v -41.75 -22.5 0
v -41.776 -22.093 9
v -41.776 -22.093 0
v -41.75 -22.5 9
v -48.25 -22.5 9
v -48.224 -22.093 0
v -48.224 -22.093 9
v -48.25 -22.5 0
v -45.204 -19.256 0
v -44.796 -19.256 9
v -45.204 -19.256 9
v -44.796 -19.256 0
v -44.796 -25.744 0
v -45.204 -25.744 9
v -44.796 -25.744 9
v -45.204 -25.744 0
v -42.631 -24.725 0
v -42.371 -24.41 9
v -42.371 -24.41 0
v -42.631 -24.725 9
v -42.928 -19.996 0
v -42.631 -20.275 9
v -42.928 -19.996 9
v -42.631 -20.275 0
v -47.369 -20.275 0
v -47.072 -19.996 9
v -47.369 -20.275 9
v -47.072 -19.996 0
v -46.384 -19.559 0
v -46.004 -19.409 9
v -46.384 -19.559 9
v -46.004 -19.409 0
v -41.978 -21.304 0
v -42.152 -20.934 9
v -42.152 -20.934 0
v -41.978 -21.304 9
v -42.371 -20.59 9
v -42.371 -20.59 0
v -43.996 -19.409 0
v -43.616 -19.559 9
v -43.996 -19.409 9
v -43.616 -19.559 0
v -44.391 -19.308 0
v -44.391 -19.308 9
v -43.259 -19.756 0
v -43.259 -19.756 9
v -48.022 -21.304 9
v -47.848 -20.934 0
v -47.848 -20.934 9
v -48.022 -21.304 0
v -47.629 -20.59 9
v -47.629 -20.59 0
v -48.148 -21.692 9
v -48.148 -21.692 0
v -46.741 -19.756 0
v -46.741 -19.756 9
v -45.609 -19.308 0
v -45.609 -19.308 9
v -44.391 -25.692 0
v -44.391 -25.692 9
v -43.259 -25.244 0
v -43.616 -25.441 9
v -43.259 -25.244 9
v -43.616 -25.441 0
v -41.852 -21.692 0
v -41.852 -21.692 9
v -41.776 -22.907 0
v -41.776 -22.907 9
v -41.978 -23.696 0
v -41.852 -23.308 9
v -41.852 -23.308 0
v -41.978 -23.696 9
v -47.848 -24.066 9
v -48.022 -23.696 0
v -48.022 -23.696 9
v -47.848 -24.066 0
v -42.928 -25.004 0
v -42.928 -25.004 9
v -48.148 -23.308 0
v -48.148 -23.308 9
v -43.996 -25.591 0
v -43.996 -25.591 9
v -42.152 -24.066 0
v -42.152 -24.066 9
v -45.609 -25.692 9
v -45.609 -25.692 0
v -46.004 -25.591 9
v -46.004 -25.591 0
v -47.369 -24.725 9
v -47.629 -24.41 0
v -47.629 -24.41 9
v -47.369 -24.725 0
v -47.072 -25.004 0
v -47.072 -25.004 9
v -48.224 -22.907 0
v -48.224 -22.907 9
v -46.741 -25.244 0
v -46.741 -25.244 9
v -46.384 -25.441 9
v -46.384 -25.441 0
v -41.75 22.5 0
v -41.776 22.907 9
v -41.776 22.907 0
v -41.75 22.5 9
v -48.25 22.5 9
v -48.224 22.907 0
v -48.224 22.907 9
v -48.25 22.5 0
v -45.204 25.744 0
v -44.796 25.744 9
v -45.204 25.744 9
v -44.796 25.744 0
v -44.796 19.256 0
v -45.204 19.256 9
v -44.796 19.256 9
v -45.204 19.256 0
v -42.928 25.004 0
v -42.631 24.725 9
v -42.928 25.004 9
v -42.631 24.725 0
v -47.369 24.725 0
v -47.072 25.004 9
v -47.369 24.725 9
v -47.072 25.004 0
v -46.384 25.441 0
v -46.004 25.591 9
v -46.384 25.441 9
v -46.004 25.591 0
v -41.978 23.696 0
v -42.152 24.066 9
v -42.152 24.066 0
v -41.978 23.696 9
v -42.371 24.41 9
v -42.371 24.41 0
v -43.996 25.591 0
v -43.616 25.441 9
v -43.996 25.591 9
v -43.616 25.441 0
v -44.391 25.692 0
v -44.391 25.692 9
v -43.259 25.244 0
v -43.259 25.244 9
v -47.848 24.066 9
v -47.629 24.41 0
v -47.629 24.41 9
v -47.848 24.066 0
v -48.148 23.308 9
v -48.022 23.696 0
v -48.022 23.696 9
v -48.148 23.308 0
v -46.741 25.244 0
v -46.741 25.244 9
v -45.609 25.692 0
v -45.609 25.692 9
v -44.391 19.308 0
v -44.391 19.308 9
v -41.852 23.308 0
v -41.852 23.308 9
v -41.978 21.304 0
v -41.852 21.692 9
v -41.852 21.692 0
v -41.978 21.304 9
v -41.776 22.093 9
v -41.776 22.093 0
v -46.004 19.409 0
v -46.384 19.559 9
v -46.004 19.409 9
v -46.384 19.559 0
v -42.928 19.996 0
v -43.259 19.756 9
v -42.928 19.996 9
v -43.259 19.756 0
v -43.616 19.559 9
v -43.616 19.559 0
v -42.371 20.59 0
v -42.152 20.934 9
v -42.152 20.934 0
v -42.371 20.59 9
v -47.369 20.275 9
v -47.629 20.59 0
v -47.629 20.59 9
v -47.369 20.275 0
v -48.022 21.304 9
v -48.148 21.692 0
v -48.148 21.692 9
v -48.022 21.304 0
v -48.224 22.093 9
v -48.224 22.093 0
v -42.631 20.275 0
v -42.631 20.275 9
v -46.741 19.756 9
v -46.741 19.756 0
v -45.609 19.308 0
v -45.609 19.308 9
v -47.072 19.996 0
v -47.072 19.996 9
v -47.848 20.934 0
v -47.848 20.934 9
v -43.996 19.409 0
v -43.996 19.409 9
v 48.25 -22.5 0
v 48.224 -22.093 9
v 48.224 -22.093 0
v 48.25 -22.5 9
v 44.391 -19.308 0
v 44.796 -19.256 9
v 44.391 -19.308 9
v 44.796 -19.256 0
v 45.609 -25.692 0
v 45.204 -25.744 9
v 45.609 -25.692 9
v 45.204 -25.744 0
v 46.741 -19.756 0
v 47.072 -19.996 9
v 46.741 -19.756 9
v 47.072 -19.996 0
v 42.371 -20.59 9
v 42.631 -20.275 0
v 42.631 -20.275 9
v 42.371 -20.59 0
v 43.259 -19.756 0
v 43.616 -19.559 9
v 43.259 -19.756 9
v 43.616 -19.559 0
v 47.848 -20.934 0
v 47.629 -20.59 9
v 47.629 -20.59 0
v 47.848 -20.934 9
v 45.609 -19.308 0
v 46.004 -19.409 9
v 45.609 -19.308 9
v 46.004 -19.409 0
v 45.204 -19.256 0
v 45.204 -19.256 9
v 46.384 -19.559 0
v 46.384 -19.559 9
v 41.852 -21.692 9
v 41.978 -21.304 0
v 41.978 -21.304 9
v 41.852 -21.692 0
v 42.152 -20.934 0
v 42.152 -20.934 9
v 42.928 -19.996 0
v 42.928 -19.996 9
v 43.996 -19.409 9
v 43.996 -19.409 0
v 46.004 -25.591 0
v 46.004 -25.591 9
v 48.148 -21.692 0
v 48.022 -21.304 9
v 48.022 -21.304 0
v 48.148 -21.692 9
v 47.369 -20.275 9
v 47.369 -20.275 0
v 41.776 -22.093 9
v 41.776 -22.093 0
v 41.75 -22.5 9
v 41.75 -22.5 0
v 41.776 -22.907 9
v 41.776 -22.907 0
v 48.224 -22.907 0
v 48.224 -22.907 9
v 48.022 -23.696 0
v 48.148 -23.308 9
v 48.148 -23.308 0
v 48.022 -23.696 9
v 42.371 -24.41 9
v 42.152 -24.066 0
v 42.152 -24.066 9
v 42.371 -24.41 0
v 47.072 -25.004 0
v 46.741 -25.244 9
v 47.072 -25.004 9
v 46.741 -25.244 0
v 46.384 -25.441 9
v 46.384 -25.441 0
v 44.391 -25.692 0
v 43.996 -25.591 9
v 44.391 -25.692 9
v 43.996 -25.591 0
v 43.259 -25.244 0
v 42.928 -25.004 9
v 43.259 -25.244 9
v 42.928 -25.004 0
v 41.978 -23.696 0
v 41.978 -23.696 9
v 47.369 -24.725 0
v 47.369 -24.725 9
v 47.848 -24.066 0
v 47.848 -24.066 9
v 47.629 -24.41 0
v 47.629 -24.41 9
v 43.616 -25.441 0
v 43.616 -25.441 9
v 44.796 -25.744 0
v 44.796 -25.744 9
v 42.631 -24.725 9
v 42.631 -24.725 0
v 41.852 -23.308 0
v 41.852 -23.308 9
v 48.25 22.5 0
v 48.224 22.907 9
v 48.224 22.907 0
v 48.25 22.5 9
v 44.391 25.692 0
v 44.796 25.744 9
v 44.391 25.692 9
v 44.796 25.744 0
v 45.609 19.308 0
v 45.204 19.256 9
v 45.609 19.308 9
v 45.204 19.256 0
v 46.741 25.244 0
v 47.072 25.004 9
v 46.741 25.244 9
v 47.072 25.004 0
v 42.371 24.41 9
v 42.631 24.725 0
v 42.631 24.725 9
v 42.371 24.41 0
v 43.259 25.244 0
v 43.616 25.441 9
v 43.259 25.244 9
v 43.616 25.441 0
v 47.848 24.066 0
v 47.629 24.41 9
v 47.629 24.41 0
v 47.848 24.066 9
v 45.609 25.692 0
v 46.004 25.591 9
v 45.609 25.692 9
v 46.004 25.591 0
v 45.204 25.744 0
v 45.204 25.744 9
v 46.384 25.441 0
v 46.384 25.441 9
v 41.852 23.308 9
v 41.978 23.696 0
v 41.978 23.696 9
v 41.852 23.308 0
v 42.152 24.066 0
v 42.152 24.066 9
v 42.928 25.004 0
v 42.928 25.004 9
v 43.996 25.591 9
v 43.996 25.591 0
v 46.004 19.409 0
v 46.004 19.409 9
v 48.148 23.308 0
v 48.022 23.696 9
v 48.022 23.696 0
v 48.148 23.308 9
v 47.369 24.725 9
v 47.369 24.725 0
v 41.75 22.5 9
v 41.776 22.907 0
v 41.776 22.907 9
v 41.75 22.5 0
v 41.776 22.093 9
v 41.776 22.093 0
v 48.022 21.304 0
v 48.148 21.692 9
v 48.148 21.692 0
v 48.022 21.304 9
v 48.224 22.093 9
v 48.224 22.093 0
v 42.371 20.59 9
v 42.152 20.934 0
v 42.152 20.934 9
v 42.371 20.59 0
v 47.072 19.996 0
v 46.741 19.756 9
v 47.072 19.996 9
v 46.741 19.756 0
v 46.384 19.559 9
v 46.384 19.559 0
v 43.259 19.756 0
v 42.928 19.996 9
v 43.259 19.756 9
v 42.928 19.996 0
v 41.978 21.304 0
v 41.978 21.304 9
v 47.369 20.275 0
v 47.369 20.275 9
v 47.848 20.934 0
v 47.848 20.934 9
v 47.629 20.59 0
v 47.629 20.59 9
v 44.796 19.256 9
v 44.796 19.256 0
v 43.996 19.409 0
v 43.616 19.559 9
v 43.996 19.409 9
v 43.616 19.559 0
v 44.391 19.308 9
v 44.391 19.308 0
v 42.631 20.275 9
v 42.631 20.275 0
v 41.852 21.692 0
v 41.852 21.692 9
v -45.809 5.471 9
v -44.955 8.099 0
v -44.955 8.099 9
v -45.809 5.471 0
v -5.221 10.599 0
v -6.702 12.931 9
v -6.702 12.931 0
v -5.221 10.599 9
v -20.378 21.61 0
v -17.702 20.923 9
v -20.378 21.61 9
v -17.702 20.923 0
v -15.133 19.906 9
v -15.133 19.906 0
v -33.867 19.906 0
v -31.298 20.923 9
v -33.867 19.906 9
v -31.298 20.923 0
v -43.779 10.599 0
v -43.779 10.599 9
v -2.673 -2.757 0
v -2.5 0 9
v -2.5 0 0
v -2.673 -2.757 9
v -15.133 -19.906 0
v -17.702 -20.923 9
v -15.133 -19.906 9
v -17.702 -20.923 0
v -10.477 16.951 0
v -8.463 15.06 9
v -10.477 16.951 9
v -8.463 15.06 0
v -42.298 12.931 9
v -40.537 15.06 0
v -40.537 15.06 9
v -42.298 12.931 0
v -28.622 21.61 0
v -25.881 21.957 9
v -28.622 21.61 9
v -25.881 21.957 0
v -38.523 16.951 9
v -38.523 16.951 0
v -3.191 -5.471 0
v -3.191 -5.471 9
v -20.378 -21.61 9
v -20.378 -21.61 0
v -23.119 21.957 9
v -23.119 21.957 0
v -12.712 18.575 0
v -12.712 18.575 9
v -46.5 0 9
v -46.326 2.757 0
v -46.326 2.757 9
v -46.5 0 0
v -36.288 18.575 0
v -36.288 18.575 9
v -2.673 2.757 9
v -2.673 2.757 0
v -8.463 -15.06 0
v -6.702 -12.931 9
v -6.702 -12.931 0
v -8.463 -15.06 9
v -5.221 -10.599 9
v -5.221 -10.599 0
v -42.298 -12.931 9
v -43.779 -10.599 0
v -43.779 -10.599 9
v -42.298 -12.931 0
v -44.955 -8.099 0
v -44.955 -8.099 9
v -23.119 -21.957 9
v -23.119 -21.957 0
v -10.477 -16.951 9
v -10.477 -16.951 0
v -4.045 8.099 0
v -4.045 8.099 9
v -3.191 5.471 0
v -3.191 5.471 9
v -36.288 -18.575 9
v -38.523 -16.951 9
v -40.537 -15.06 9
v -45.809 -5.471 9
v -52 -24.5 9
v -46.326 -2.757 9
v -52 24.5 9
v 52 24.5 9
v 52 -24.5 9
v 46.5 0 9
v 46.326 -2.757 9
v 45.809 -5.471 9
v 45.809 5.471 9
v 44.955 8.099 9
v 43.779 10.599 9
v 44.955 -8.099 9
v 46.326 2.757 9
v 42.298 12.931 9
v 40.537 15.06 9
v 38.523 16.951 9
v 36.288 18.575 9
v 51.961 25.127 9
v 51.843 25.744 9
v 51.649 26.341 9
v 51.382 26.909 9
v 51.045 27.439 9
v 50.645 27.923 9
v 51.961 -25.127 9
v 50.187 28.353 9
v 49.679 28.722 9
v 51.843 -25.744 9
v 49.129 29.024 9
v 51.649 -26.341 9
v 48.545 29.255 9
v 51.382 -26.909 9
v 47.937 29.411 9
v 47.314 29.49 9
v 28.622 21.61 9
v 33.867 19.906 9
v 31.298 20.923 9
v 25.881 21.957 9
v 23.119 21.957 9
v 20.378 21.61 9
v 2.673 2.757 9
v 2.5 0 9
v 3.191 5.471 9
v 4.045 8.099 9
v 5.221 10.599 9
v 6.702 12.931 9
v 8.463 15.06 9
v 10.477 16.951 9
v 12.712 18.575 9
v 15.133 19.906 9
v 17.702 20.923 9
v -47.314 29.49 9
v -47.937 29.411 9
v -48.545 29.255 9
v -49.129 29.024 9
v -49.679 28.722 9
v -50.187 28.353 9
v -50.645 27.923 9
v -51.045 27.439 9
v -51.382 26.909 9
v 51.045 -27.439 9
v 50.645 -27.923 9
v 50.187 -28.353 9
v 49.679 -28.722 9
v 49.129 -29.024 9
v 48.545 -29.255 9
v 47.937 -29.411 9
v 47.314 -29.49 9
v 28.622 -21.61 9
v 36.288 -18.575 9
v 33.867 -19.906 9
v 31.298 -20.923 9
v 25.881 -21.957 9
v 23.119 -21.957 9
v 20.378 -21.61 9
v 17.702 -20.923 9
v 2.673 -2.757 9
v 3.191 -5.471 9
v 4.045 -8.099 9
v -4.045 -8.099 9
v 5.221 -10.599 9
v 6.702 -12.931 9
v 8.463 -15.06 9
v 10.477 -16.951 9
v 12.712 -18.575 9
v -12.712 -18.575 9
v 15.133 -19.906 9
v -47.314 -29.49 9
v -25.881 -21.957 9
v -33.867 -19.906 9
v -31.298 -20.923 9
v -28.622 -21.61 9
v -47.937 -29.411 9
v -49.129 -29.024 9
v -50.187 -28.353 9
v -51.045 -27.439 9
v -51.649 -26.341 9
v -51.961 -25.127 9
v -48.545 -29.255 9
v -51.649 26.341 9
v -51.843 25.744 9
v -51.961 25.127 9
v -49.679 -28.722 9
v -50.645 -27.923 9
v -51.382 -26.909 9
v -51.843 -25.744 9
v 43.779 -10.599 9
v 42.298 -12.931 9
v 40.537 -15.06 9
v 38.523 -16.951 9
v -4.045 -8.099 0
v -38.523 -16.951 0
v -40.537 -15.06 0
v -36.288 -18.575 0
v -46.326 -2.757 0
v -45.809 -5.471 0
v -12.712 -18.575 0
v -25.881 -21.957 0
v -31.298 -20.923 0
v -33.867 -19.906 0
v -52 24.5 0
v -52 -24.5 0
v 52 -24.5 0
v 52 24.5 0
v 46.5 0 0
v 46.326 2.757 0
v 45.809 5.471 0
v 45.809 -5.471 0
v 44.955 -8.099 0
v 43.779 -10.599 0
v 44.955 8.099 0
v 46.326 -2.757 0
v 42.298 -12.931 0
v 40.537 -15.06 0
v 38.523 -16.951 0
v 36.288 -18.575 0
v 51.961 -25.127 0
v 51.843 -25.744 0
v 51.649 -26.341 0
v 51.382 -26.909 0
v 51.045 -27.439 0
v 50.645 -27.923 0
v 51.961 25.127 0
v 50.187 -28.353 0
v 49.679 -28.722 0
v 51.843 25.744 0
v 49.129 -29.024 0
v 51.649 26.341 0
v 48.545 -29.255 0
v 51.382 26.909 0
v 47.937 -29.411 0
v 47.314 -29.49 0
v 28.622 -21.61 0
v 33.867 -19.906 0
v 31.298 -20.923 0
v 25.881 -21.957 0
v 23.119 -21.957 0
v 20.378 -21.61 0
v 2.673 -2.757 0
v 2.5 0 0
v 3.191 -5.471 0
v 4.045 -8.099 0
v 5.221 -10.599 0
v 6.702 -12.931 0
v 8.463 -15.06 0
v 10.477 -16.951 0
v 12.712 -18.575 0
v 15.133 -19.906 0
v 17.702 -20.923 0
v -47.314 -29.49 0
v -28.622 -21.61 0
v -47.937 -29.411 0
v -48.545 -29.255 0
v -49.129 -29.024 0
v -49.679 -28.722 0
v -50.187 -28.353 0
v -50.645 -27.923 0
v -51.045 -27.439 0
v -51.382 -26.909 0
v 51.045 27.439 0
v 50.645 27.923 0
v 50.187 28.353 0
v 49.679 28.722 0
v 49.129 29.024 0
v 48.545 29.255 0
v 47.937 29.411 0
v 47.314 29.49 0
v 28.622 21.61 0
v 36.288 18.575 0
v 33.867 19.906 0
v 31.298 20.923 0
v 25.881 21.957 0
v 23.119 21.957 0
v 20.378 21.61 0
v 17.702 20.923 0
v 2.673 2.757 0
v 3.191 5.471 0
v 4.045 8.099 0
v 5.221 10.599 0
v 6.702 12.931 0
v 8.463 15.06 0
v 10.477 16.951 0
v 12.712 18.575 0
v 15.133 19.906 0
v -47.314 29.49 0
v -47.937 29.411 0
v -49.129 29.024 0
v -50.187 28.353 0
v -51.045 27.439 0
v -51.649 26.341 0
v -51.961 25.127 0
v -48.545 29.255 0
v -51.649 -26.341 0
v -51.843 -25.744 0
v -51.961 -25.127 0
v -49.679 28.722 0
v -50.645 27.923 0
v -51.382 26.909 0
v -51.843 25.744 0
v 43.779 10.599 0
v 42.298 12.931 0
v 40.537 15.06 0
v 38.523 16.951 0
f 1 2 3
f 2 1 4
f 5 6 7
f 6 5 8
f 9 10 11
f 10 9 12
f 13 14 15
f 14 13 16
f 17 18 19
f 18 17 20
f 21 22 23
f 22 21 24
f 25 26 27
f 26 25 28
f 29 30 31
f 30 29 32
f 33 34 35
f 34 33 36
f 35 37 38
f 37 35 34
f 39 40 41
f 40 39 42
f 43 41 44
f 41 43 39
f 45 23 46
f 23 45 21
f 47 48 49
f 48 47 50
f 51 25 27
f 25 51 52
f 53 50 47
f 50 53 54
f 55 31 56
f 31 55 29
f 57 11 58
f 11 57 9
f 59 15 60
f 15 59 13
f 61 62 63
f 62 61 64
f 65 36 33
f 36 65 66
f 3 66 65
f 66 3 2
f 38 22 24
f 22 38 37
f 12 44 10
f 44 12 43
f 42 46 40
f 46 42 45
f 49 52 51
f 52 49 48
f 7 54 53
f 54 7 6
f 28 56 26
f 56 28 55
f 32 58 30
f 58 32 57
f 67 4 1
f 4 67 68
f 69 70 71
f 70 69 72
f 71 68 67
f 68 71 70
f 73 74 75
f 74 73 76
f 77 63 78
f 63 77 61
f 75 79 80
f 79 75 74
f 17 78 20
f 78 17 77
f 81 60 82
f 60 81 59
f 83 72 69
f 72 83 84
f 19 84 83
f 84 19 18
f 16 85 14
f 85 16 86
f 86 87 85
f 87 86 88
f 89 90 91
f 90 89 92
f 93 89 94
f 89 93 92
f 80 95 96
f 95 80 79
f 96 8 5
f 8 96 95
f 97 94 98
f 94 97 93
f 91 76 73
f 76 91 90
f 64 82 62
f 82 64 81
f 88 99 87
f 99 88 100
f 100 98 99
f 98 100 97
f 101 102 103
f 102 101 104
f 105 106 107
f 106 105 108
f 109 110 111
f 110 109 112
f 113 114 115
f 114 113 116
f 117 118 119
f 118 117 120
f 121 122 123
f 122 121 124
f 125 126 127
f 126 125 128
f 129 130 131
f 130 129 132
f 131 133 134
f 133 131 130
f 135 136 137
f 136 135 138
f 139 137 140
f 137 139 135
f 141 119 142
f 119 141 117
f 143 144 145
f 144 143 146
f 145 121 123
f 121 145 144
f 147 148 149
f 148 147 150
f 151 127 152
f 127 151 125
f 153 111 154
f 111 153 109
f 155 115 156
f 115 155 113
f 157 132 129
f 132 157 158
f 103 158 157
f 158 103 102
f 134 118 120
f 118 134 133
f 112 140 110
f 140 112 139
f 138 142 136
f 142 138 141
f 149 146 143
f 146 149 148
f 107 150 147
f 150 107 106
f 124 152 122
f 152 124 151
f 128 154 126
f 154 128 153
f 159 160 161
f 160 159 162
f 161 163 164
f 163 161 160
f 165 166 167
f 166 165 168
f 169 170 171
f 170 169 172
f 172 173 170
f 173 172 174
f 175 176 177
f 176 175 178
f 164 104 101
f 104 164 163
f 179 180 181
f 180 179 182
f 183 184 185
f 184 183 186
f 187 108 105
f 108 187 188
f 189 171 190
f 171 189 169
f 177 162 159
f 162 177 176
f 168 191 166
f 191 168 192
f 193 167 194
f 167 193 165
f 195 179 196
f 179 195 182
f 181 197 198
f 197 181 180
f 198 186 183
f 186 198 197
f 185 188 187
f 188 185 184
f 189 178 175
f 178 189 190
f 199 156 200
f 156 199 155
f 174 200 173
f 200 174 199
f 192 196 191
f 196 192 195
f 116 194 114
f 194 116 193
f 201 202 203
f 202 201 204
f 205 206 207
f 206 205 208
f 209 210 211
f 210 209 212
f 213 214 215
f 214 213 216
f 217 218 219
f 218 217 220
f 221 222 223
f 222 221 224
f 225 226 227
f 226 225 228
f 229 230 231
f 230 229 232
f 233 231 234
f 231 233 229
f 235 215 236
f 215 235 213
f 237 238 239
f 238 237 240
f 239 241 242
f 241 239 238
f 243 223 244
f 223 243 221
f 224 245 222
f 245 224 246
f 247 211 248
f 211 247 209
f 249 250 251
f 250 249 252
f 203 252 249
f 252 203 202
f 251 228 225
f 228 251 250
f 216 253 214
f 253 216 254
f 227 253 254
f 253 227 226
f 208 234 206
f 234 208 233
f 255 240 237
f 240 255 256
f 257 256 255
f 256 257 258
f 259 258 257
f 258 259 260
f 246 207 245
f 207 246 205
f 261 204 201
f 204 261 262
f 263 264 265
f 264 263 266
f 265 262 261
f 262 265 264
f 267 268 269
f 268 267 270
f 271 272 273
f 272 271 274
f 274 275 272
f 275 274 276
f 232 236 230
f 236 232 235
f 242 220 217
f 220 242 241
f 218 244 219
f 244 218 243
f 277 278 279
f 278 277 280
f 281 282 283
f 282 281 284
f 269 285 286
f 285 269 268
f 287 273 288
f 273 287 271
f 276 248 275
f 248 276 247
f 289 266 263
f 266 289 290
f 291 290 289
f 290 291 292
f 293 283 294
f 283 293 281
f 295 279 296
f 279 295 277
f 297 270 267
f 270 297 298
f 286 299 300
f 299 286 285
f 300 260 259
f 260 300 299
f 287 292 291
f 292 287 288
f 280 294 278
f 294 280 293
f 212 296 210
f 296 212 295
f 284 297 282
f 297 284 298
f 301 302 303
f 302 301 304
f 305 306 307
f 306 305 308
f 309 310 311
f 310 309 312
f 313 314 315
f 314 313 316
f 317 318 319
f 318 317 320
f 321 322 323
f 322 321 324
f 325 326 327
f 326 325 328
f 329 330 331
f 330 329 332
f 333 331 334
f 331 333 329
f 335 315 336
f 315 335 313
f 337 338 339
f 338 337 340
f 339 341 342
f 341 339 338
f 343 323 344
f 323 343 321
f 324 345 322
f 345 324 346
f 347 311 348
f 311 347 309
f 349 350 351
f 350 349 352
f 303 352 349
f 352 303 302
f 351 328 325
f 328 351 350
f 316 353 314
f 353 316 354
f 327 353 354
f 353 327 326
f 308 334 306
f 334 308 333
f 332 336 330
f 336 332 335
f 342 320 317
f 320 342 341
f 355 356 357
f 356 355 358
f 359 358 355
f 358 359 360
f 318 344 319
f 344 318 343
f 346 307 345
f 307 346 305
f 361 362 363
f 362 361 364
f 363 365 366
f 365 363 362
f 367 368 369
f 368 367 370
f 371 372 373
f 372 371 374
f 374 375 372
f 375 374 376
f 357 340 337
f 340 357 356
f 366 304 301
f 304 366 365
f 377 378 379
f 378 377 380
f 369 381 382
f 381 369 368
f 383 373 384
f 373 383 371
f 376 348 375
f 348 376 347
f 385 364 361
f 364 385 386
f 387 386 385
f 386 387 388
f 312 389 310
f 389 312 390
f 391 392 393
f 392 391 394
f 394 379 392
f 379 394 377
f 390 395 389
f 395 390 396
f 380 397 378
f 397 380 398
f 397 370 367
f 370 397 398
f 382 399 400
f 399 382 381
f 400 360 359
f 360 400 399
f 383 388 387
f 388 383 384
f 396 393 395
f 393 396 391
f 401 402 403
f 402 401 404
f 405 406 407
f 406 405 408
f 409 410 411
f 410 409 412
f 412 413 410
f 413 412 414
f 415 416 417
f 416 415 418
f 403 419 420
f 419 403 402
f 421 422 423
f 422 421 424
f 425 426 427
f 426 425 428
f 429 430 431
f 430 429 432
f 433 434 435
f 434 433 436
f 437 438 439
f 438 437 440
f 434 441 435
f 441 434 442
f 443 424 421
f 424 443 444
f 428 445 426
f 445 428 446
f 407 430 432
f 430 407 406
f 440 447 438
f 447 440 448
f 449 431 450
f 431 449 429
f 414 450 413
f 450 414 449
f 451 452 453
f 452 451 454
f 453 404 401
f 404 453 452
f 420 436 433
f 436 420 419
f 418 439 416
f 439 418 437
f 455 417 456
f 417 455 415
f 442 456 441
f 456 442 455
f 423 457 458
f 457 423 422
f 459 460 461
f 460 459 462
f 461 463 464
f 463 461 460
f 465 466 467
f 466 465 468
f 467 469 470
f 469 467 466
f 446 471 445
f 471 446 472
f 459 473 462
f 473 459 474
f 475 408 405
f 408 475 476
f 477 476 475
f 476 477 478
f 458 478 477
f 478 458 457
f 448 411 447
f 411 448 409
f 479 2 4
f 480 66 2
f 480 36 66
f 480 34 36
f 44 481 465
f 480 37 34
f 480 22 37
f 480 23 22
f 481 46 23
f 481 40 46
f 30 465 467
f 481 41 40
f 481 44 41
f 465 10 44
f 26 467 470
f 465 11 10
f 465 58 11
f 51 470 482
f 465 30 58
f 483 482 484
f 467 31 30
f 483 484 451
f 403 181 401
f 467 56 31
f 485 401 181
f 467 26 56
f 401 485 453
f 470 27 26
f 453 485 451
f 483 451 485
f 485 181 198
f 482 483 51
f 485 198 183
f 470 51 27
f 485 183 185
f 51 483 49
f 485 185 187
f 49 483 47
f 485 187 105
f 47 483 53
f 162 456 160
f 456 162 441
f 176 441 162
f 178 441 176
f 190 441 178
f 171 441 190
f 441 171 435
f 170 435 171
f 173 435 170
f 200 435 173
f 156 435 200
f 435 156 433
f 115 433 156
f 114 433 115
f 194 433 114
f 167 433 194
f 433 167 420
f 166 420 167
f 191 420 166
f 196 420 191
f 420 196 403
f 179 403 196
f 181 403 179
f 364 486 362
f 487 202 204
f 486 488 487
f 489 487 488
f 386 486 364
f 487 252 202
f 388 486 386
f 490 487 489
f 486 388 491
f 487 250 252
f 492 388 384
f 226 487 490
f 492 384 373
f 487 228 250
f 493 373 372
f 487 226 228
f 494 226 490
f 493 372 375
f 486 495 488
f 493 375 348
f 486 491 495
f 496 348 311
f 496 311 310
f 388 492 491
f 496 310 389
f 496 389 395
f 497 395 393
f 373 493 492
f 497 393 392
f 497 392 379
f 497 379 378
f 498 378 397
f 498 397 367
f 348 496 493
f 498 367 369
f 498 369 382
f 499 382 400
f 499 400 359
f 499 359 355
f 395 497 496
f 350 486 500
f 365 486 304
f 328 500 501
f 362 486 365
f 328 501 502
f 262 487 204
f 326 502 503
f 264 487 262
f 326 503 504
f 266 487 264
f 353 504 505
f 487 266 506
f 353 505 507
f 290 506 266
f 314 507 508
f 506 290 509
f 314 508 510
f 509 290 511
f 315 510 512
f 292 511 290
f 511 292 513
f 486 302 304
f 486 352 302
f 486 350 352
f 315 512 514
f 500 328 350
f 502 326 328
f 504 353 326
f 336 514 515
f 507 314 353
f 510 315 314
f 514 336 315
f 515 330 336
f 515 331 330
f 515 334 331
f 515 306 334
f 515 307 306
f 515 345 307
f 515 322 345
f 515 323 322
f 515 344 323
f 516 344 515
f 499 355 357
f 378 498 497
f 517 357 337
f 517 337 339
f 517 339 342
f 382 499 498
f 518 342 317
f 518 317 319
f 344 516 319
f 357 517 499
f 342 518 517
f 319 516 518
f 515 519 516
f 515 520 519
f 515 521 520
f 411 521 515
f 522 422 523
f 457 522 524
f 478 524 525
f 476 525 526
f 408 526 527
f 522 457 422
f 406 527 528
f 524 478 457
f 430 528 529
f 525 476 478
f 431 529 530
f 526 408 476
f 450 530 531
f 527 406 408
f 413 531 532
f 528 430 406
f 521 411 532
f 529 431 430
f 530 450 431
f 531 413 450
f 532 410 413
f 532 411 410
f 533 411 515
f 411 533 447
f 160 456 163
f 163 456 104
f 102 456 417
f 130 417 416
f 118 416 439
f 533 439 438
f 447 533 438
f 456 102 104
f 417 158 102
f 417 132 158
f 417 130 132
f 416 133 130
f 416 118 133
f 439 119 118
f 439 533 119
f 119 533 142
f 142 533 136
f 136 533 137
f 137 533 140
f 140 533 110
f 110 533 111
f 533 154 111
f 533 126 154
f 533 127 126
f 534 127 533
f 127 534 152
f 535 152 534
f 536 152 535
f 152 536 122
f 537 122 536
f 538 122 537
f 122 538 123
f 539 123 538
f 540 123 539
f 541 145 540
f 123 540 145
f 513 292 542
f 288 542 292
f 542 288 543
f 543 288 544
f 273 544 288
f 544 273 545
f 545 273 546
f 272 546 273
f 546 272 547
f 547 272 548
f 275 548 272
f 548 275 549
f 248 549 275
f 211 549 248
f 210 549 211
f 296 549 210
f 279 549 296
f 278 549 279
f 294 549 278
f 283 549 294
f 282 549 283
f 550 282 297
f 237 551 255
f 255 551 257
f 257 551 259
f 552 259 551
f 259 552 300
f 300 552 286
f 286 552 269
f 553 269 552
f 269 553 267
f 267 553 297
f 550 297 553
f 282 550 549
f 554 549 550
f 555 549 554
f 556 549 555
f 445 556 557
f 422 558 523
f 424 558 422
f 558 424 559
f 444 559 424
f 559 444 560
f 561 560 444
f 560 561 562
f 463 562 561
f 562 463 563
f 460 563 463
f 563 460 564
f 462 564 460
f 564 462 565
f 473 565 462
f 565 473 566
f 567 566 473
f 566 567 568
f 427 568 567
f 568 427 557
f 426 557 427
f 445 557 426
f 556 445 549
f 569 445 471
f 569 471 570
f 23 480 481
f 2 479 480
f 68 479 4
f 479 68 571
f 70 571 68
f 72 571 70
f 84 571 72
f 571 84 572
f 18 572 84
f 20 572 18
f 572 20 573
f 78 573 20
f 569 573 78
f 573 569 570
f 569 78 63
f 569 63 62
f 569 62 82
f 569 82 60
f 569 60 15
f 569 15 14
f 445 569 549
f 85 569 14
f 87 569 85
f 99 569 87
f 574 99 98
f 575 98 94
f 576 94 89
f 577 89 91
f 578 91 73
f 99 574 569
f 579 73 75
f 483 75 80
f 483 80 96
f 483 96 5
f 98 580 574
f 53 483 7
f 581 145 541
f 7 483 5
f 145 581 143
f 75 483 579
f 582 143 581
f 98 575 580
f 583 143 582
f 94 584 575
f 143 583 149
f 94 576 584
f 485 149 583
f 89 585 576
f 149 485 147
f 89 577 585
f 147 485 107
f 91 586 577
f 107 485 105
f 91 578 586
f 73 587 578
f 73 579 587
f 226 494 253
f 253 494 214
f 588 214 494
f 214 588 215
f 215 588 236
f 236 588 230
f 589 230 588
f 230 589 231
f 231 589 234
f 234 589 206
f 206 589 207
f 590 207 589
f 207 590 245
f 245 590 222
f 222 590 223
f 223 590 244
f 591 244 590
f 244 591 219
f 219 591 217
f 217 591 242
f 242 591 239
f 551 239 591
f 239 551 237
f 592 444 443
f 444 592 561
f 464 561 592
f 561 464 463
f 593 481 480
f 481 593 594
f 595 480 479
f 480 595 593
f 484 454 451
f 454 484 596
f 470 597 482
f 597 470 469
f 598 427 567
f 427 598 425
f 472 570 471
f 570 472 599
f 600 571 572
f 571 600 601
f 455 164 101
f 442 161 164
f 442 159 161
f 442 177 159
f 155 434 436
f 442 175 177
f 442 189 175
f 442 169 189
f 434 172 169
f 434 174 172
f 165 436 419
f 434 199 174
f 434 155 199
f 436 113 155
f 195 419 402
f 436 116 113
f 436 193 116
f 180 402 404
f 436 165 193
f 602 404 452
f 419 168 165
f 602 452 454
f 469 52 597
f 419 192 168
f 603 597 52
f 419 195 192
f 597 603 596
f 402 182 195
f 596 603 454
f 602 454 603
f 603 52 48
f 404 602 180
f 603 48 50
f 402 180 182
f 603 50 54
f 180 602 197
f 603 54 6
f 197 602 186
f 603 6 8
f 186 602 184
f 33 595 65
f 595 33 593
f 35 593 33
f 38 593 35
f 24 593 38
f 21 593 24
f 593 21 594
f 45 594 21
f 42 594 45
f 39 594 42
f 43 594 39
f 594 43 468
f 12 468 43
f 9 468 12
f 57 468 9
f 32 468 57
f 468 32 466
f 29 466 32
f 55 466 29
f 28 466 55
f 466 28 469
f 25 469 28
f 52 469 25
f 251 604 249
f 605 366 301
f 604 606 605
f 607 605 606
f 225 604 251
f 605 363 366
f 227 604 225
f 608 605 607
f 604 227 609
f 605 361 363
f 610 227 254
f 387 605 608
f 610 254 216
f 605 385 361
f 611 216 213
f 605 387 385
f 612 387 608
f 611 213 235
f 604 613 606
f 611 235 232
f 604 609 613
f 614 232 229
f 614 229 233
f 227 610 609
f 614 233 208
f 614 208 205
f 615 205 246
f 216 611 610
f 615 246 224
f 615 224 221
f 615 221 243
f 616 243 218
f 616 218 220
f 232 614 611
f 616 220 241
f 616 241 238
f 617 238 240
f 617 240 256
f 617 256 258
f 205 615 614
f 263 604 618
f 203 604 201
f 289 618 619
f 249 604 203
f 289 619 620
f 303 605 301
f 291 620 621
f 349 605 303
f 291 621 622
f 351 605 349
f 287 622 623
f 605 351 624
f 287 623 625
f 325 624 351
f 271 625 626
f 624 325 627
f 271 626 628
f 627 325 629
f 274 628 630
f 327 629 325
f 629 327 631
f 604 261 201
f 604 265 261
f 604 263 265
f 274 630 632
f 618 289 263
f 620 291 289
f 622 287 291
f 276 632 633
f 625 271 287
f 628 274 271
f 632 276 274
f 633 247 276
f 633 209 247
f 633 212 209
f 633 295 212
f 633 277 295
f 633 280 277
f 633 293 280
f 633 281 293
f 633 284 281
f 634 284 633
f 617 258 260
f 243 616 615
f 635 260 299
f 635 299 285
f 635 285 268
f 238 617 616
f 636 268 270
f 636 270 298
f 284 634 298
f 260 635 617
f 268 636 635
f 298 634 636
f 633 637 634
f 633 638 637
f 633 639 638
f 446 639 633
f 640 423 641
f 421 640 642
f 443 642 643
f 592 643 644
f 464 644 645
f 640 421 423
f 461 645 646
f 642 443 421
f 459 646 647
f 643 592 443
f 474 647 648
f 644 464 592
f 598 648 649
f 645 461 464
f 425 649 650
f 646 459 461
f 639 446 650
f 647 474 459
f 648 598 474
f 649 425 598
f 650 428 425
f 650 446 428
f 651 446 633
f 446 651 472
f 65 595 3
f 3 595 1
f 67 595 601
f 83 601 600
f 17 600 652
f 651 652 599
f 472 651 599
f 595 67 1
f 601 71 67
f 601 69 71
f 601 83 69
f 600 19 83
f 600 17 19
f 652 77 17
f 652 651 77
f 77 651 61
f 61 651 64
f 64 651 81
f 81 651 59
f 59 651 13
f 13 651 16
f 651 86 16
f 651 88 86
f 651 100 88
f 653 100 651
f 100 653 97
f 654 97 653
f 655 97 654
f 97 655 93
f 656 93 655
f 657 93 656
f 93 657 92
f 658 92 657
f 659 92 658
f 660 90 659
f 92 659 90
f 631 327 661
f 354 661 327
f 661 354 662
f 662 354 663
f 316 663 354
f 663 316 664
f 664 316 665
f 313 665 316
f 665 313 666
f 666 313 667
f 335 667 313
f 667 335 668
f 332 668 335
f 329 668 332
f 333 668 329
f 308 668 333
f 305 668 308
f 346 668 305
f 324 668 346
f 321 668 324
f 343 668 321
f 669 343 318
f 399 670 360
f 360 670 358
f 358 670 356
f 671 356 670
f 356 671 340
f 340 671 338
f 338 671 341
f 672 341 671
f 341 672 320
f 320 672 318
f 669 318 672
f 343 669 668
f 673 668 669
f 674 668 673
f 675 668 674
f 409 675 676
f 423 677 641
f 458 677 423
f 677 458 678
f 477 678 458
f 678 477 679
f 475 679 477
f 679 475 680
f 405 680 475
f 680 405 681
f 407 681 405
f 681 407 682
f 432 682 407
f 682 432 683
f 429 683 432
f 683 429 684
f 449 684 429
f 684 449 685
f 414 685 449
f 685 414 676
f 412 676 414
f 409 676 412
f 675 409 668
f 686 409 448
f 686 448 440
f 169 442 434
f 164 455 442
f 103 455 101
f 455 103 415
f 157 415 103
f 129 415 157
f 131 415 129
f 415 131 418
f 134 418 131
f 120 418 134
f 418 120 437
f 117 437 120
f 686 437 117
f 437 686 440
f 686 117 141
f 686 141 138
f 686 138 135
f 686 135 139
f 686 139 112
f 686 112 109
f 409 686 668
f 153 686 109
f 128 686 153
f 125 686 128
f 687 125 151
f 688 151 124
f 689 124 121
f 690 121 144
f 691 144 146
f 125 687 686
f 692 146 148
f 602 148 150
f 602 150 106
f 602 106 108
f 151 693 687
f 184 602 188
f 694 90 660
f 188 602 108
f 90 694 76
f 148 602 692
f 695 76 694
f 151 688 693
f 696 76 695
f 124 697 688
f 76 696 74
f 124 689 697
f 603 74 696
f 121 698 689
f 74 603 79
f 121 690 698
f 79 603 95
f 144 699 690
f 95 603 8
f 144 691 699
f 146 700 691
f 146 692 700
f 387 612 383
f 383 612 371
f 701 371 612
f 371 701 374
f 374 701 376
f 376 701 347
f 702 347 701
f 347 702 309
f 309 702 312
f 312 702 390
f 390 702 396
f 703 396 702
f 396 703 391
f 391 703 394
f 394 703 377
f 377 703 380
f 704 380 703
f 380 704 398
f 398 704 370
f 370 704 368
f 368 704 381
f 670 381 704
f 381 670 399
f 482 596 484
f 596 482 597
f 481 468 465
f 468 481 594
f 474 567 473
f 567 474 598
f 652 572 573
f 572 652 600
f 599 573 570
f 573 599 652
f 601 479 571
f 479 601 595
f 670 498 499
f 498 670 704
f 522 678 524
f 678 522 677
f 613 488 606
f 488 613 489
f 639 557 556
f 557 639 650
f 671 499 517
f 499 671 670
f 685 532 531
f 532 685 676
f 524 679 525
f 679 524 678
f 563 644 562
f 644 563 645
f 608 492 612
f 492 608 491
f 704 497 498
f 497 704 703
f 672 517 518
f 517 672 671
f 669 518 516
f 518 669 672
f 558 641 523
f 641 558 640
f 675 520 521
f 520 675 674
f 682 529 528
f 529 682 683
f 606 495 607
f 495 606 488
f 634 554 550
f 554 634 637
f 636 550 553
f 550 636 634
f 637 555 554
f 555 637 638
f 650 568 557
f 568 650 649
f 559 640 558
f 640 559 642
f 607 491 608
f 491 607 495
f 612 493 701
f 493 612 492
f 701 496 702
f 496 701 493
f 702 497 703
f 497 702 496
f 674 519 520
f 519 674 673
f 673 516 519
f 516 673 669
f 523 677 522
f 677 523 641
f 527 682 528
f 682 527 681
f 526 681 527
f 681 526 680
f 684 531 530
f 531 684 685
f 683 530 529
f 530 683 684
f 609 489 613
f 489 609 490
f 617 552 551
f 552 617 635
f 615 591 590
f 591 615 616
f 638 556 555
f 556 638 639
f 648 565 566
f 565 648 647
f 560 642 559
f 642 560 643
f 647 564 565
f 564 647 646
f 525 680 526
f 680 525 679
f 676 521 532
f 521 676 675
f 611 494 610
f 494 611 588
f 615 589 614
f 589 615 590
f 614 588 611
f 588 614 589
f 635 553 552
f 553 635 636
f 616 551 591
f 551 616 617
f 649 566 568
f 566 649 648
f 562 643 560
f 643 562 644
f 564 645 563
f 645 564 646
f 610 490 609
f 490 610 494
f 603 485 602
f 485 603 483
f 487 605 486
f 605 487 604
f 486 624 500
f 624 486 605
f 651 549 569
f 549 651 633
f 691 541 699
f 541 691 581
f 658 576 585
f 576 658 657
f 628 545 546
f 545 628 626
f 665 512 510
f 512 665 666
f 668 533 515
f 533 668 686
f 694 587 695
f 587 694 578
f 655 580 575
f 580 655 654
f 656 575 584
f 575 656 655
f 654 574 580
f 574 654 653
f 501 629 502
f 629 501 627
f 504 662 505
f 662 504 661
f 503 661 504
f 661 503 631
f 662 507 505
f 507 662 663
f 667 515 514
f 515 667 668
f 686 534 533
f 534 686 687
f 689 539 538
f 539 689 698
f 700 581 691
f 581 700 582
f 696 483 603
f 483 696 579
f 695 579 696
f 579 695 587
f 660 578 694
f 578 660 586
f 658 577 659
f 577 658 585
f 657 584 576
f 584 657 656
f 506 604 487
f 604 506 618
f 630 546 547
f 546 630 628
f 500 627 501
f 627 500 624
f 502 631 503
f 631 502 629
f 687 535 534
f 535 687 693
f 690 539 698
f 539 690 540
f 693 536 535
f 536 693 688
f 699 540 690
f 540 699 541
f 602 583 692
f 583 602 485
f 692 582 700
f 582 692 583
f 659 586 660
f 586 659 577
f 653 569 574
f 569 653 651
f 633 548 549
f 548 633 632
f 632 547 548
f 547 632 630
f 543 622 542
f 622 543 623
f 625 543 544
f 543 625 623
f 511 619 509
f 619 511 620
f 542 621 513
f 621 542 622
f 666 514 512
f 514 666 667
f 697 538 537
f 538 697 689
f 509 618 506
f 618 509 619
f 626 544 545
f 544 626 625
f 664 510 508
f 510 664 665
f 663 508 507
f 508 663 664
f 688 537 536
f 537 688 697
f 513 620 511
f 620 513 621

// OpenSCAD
$fn = 50;


difference() {
	union() {
		hull() {
			translate(v = [-47.0000000000, 24.5000000000, 0]) {
				cylinder(h = 9, r = 5);
			}
			translate(v = [47.0000000000, 24.5000000000, 0]) {
				cylinder(h = 9, r = 5);
			}
			translate(v = [-47.0000000000, -24.5000000000, 0]) {
				cylinder(h = 9, r = 5);
			}
			translate(v = [47.0000000000, -24.5000000000, 0]) {
				cylinder(h = 9, r = 5);
			}
		}
	}
	union() {
		#translate(v = [-45.0000000000, -22.5000000000, -100.0000000000]) {
			cylinder(h = 200, r = 3.2500000000);
		}
		#translate(v = [-45.0000000000, 22.5000000000, -100.0000000000]) {
			cylinder(h = 200, r = 3.2500000000);
		}
		#translate(v = [45.0000000000, -22.5000000000, -100.0000000000]) {
			cylinder(h = 200, r = 3.2500000000);
		}
		#translate(v = [45.0000000000, 22.5000000000, -100.0000000000]) {
			cylinder(h = 200, r = 3.2500000000);
		}
		#translate(v = [-24.5000000000, 0, 0]) {
			cylinder(h = 9, r = 22.0000000000);
		}
		#translate(v = [24.5000000000, 0, 0]) {
			cylinder(h = 9, r = 22.0000000000);
		}
	}
}
